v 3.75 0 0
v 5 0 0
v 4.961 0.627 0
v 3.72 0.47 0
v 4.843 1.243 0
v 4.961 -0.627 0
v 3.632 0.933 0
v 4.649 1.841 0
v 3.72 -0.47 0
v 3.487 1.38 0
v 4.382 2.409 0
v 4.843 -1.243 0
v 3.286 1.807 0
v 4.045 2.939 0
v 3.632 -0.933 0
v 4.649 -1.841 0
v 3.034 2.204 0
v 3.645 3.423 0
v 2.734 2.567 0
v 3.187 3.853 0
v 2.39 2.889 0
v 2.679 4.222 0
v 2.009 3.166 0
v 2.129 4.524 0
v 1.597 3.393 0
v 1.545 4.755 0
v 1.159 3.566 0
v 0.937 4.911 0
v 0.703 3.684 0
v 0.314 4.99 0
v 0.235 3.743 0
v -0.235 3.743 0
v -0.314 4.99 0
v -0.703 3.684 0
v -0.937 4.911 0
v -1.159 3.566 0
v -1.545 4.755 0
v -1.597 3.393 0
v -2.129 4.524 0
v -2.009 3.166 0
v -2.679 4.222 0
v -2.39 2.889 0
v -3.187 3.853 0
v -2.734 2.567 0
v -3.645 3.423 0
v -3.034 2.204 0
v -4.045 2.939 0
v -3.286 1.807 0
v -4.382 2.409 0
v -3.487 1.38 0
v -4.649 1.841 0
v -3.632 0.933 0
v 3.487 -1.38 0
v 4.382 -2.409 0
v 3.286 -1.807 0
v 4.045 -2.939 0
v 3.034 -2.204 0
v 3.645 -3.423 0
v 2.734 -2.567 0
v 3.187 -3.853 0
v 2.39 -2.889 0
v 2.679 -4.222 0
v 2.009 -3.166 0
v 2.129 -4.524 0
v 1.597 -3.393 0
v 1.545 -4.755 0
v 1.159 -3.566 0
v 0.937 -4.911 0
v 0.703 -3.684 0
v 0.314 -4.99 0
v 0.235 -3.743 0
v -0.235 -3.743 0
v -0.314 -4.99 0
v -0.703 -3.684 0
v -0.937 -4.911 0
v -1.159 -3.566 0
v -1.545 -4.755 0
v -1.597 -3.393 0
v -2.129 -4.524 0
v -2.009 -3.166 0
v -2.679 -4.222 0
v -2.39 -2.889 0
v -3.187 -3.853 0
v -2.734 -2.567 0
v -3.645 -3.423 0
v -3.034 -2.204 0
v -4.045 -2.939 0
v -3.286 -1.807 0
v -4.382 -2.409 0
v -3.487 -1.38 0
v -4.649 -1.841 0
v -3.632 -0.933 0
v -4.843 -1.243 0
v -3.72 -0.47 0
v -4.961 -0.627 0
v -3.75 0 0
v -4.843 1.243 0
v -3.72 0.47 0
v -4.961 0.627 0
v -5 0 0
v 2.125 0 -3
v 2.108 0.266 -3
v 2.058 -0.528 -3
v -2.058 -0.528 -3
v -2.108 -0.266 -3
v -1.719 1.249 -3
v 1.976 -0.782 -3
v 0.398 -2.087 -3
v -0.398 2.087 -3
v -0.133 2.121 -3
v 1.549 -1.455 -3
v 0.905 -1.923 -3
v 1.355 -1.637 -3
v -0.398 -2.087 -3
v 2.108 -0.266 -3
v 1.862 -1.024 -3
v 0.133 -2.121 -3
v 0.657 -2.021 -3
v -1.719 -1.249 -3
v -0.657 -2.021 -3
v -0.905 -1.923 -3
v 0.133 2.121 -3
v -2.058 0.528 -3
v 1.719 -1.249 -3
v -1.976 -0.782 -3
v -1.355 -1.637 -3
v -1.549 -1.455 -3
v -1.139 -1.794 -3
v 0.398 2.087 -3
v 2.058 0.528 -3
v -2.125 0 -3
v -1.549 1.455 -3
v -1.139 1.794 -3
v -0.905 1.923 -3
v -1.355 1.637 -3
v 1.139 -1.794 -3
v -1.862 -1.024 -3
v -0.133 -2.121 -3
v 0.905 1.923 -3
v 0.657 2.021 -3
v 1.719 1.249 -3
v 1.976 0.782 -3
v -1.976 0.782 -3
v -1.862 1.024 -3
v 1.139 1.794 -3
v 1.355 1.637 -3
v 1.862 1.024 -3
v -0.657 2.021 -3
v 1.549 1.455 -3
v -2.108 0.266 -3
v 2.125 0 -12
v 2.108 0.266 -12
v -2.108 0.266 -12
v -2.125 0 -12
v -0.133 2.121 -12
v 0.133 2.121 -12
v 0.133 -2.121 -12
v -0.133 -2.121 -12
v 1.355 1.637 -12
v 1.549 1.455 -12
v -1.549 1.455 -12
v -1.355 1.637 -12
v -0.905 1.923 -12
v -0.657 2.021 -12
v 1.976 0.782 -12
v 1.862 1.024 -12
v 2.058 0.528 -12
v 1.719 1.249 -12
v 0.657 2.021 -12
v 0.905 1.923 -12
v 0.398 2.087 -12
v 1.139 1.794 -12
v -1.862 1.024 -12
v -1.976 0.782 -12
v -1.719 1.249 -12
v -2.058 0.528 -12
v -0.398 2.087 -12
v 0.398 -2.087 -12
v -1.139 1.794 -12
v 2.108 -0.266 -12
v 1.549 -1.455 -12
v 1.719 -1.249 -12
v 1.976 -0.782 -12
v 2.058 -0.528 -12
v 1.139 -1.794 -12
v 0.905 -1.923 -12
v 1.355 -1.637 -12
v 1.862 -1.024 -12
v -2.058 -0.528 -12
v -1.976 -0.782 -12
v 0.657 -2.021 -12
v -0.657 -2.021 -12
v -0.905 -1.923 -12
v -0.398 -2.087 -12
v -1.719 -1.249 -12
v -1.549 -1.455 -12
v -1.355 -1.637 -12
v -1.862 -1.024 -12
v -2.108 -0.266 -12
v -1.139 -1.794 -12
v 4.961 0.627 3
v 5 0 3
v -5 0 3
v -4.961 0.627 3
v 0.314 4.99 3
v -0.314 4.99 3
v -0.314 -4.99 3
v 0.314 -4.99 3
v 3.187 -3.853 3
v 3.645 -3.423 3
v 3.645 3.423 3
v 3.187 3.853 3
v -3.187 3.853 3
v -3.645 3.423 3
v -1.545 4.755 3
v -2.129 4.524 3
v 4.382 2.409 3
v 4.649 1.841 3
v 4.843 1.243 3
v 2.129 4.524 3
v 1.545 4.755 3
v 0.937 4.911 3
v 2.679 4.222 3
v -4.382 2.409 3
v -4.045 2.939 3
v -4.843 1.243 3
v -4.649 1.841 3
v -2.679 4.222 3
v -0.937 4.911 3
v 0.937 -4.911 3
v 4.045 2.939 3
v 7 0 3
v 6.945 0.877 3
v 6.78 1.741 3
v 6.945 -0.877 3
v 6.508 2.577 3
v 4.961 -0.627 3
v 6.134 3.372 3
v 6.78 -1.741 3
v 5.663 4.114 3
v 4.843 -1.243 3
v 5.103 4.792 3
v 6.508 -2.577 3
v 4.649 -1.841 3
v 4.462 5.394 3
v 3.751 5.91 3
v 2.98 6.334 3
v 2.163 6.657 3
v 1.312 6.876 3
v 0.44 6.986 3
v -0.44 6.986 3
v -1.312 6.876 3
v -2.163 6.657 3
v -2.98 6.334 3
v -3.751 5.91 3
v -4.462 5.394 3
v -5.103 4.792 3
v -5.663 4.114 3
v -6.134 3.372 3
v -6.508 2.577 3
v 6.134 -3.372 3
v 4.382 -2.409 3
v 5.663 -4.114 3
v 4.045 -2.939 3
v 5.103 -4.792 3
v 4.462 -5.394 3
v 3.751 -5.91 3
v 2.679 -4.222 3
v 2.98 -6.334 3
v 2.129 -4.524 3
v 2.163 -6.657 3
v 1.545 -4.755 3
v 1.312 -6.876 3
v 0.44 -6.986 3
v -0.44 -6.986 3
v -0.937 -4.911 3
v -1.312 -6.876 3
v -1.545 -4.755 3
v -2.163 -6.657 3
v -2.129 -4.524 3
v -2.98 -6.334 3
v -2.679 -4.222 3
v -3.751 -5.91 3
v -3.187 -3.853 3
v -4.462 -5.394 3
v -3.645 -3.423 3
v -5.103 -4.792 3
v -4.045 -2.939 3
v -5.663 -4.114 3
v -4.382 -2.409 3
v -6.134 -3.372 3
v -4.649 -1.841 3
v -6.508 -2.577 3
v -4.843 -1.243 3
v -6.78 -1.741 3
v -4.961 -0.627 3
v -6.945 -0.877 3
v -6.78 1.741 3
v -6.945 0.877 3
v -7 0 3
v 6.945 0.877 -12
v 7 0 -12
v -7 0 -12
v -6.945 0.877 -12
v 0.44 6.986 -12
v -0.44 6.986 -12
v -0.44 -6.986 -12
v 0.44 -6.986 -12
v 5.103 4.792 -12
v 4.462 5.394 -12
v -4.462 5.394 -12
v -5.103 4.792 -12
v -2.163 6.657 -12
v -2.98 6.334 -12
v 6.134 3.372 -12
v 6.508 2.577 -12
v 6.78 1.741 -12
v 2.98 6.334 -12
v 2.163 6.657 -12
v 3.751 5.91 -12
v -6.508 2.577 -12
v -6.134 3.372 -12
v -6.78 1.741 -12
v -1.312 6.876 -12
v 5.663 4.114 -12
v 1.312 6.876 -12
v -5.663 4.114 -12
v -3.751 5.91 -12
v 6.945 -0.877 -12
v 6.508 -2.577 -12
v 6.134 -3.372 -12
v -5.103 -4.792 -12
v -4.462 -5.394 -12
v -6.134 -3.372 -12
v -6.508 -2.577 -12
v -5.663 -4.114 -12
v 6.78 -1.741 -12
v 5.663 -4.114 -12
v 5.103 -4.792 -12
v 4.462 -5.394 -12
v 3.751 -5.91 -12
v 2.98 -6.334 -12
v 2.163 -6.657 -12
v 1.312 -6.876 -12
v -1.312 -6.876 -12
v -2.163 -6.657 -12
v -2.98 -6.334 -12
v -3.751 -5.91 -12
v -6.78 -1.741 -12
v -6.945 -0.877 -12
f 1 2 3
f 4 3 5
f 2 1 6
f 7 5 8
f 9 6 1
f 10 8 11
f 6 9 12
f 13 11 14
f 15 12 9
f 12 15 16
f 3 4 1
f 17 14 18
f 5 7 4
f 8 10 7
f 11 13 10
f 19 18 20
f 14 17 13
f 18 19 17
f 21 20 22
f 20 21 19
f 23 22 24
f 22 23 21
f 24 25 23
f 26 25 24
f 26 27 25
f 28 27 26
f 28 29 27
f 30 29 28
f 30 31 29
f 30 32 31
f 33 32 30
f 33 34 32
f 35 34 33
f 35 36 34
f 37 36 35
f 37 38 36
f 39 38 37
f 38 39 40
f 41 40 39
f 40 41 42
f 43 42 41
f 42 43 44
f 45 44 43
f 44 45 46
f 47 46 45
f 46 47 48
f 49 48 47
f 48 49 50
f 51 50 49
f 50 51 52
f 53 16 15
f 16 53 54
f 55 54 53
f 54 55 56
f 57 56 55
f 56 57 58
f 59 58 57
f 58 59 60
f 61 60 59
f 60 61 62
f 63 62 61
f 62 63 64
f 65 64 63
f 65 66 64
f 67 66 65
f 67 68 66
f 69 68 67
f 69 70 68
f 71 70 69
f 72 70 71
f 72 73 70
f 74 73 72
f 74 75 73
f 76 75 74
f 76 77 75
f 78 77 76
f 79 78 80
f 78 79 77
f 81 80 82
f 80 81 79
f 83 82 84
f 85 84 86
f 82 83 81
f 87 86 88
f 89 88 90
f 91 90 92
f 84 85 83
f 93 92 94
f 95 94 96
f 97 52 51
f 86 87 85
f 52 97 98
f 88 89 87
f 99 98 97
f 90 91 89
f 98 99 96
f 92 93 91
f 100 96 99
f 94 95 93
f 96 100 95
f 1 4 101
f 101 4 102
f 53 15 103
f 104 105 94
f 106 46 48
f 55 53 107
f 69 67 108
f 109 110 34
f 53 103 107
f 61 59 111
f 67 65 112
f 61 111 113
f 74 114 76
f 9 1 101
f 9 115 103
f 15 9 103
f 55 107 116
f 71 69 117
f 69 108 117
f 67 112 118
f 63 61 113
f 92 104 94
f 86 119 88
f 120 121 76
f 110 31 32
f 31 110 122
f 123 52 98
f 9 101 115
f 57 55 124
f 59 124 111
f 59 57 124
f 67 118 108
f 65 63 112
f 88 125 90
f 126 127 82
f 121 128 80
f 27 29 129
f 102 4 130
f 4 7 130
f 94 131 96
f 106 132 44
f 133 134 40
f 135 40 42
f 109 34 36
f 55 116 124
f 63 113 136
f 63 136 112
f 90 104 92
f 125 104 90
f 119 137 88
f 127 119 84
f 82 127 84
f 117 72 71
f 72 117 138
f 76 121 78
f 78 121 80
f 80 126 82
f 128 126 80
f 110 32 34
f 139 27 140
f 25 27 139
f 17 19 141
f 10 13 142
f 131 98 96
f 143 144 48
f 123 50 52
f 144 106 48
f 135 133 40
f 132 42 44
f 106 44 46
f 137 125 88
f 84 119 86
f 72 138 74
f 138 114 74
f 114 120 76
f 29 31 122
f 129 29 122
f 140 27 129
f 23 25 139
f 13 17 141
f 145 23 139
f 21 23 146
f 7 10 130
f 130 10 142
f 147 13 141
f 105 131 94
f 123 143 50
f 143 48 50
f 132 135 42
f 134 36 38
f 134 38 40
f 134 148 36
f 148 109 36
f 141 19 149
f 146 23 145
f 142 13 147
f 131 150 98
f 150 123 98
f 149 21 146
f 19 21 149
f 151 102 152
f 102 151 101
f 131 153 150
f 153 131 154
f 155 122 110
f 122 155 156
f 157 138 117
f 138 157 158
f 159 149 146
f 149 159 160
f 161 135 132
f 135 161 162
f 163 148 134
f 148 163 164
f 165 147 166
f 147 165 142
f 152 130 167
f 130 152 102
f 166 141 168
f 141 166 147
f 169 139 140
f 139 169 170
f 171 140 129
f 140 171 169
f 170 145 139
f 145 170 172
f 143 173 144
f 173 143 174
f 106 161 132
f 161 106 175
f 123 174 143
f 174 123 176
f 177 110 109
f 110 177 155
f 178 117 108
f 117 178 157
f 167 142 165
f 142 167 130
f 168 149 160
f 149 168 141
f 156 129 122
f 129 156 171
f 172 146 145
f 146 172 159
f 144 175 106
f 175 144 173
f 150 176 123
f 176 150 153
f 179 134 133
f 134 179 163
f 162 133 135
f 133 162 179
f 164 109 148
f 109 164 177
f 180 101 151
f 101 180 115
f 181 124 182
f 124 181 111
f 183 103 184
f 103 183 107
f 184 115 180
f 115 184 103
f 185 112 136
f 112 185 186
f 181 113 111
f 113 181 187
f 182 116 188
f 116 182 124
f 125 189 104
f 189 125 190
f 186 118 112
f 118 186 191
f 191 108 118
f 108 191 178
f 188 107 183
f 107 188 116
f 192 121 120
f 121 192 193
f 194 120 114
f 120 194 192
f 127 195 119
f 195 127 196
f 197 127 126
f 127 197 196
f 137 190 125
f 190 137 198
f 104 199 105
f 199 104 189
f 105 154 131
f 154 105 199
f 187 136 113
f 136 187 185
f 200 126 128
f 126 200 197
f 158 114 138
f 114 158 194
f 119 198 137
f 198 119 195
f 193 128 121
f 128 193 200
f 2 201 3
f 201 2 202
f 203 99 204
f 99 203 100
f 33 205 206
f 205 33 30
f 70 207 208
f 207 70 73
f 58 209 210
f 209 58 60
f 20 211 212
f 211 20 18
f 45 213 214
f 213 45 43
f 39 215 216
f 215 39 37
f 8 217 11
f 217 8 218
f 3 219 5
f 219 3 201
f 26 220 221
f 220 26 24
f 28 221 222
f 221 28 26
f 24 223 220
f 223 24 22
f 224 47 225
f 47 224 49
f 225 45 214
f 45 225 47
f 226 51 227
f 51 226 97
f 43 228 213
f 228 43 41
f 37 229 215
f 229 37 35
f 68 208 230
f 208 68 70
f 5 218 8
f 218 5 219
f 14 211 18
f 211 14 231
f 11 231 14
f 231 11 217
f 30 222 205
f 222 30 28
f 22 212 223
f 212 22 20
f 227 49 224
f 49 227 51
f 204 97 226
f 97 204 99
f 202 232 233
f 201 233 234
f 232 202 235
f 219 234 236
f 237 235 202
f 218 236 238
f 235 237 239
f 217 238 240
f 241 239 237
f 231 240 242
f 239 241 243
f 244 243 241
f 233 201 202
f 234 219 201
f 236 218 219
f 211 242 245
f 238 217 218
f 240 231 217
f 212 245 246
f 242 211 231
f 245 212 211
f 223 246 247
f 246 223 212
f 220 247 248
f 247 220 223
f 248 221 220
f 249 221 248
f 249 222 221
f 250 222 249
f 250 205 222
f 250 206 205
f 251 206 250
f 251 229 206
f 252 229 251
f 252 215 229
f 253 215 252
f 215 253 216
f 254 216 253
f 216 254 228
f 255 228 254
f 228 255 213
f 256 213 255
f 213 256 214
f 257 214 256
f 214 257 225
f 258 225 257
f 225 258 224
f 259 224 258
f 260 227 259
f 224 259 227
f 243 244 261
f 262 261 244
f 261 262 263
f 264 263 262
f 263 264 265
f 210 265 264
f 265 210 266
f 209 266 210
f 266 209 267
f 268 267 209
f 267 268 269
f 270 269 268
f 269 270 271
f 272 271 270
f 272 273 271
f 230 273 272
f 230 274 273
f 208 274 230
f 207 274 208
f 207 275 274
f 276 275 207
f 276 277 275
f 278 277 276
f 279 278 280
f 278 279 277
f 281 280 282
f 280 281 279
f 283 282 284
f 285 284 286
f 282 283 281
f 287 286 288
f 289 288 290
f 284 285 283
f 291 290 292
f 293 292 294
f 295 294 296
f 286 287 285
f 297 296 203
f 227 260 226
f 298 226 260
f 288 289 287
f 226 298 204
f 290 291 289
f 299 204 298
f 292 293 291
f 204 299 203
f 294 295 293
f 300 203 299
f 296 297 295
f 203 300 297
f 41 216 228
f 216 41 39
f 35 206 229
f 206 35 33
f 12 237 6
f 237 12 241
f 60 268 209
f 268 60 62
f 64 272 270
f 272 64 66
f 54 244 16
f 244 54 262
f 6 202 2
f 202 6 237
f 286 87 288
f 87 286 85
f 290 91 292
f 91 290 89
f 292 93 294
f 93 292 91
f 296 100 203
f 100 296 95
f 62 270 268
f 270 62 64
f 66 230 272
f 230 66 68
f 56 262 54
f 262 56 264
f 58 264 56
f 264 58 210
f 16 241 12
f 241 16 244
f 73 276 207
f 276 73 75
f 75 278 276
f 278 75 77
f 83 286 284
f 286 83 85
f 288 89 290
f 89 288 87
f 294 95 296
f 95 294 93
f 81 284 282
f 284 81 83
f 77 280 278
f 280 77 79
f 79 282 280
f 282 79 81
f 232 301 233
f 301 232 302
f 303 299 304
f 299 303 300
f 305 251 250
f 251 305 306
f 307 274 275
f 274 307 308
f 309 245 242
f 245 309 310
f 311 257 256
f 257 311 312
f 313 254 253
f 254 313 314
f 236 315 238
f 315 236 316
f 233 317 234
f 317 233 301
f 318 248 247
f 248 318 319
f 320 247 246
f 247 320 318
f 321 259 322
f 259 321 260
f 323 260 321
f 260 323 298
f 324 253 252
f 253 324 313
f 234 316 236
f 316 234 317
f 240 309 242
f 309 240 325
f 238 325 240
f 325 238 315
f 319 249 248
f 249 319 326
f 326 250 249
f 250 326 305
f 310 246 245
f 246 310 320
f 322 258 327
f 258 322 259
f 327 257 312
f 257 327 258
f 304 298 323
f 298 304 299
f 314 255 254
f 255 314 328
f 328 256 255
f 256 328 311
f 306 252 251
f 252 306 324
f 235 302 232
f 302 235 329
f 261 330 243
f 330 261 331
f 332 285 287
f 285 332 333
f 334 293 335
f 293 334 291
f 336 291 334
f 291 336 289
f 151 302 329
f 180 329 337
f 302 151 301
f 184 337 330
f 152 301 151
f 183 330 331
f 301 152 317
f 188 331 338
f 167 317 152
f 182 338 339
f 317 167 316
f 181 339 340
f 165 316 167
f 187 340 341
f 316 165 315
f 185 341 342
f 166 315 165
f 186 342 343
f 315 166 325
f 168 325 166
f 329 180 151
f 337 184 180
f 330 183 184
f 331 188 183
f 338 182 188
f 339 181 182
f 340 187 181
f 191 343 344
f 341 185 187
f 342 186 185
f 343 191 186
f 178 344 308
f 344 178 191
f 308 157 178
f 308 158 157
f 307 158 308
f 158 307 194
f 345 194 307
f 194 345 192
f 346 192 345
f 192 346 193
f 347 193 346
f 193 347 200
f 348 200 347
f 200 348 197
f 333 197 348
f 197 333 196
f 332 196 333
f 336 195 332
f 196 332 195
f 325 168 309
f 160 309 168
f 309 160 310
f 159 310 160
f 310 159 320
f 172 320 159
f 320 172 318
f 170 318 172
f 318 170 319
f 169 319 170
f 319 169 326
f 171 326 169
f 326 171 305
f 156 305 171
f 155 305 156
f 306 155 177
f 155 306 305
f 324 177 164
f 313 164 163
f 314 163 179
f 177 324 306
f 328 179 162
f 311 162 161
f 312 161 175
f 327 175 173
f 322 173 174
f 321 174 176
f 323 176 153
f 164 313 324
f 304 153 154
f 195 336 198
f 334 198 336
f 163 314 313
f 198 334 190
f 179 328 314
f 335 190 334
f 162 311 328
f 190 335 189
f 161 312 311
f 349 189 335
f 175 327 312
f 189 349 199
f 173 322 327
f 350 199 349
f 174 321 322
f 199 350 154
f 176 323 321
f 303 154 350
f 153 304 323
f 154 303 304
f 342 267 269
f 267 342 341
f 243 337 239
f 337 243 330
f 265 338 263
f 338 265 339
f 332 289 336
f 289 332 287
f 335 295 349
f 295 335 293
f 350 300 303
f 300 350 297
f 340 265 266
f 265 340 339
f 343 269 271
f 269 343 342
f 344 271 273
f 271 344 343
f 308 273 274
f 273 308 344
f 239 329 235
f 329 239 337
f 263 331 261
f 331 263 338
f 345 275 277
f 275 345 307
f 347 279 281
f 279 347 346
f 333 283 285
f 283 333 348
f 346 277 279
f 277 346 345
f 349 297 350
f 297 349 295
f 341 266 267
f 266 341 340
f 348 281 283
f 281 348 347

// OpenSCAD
$fn = 50;

difference() {
	union() {
		translate(v = [0, 0, -12.0]) {
			cylinder(h = 15, r = 7.0);
		}
	}
	union() {
		translate(v = [0, 0, 0]) {
			rotate(a = [0, 0, 0]) {
				difference() {
					union() {
						translate(v = [0, 0, -15.0]) {
							cylinder(h = 15, r = 2.0);
						}
						translate(v = [0, 0, -3]) {
							cylinder(h = 3, r1 = 2.125, r2 = 3.75);
						}
						translate(v = [0, 0, -15.0]) {
							cylinder(h = 15, r = 2.125);
						}
						translate(v = [0, 0, -15.0]) {
							cylinder(h = 15, r = 2.0);
						}
					}
					union();
				}
			}
		}
		#cylinder(h = 3, r = 5.0);
	}
}
